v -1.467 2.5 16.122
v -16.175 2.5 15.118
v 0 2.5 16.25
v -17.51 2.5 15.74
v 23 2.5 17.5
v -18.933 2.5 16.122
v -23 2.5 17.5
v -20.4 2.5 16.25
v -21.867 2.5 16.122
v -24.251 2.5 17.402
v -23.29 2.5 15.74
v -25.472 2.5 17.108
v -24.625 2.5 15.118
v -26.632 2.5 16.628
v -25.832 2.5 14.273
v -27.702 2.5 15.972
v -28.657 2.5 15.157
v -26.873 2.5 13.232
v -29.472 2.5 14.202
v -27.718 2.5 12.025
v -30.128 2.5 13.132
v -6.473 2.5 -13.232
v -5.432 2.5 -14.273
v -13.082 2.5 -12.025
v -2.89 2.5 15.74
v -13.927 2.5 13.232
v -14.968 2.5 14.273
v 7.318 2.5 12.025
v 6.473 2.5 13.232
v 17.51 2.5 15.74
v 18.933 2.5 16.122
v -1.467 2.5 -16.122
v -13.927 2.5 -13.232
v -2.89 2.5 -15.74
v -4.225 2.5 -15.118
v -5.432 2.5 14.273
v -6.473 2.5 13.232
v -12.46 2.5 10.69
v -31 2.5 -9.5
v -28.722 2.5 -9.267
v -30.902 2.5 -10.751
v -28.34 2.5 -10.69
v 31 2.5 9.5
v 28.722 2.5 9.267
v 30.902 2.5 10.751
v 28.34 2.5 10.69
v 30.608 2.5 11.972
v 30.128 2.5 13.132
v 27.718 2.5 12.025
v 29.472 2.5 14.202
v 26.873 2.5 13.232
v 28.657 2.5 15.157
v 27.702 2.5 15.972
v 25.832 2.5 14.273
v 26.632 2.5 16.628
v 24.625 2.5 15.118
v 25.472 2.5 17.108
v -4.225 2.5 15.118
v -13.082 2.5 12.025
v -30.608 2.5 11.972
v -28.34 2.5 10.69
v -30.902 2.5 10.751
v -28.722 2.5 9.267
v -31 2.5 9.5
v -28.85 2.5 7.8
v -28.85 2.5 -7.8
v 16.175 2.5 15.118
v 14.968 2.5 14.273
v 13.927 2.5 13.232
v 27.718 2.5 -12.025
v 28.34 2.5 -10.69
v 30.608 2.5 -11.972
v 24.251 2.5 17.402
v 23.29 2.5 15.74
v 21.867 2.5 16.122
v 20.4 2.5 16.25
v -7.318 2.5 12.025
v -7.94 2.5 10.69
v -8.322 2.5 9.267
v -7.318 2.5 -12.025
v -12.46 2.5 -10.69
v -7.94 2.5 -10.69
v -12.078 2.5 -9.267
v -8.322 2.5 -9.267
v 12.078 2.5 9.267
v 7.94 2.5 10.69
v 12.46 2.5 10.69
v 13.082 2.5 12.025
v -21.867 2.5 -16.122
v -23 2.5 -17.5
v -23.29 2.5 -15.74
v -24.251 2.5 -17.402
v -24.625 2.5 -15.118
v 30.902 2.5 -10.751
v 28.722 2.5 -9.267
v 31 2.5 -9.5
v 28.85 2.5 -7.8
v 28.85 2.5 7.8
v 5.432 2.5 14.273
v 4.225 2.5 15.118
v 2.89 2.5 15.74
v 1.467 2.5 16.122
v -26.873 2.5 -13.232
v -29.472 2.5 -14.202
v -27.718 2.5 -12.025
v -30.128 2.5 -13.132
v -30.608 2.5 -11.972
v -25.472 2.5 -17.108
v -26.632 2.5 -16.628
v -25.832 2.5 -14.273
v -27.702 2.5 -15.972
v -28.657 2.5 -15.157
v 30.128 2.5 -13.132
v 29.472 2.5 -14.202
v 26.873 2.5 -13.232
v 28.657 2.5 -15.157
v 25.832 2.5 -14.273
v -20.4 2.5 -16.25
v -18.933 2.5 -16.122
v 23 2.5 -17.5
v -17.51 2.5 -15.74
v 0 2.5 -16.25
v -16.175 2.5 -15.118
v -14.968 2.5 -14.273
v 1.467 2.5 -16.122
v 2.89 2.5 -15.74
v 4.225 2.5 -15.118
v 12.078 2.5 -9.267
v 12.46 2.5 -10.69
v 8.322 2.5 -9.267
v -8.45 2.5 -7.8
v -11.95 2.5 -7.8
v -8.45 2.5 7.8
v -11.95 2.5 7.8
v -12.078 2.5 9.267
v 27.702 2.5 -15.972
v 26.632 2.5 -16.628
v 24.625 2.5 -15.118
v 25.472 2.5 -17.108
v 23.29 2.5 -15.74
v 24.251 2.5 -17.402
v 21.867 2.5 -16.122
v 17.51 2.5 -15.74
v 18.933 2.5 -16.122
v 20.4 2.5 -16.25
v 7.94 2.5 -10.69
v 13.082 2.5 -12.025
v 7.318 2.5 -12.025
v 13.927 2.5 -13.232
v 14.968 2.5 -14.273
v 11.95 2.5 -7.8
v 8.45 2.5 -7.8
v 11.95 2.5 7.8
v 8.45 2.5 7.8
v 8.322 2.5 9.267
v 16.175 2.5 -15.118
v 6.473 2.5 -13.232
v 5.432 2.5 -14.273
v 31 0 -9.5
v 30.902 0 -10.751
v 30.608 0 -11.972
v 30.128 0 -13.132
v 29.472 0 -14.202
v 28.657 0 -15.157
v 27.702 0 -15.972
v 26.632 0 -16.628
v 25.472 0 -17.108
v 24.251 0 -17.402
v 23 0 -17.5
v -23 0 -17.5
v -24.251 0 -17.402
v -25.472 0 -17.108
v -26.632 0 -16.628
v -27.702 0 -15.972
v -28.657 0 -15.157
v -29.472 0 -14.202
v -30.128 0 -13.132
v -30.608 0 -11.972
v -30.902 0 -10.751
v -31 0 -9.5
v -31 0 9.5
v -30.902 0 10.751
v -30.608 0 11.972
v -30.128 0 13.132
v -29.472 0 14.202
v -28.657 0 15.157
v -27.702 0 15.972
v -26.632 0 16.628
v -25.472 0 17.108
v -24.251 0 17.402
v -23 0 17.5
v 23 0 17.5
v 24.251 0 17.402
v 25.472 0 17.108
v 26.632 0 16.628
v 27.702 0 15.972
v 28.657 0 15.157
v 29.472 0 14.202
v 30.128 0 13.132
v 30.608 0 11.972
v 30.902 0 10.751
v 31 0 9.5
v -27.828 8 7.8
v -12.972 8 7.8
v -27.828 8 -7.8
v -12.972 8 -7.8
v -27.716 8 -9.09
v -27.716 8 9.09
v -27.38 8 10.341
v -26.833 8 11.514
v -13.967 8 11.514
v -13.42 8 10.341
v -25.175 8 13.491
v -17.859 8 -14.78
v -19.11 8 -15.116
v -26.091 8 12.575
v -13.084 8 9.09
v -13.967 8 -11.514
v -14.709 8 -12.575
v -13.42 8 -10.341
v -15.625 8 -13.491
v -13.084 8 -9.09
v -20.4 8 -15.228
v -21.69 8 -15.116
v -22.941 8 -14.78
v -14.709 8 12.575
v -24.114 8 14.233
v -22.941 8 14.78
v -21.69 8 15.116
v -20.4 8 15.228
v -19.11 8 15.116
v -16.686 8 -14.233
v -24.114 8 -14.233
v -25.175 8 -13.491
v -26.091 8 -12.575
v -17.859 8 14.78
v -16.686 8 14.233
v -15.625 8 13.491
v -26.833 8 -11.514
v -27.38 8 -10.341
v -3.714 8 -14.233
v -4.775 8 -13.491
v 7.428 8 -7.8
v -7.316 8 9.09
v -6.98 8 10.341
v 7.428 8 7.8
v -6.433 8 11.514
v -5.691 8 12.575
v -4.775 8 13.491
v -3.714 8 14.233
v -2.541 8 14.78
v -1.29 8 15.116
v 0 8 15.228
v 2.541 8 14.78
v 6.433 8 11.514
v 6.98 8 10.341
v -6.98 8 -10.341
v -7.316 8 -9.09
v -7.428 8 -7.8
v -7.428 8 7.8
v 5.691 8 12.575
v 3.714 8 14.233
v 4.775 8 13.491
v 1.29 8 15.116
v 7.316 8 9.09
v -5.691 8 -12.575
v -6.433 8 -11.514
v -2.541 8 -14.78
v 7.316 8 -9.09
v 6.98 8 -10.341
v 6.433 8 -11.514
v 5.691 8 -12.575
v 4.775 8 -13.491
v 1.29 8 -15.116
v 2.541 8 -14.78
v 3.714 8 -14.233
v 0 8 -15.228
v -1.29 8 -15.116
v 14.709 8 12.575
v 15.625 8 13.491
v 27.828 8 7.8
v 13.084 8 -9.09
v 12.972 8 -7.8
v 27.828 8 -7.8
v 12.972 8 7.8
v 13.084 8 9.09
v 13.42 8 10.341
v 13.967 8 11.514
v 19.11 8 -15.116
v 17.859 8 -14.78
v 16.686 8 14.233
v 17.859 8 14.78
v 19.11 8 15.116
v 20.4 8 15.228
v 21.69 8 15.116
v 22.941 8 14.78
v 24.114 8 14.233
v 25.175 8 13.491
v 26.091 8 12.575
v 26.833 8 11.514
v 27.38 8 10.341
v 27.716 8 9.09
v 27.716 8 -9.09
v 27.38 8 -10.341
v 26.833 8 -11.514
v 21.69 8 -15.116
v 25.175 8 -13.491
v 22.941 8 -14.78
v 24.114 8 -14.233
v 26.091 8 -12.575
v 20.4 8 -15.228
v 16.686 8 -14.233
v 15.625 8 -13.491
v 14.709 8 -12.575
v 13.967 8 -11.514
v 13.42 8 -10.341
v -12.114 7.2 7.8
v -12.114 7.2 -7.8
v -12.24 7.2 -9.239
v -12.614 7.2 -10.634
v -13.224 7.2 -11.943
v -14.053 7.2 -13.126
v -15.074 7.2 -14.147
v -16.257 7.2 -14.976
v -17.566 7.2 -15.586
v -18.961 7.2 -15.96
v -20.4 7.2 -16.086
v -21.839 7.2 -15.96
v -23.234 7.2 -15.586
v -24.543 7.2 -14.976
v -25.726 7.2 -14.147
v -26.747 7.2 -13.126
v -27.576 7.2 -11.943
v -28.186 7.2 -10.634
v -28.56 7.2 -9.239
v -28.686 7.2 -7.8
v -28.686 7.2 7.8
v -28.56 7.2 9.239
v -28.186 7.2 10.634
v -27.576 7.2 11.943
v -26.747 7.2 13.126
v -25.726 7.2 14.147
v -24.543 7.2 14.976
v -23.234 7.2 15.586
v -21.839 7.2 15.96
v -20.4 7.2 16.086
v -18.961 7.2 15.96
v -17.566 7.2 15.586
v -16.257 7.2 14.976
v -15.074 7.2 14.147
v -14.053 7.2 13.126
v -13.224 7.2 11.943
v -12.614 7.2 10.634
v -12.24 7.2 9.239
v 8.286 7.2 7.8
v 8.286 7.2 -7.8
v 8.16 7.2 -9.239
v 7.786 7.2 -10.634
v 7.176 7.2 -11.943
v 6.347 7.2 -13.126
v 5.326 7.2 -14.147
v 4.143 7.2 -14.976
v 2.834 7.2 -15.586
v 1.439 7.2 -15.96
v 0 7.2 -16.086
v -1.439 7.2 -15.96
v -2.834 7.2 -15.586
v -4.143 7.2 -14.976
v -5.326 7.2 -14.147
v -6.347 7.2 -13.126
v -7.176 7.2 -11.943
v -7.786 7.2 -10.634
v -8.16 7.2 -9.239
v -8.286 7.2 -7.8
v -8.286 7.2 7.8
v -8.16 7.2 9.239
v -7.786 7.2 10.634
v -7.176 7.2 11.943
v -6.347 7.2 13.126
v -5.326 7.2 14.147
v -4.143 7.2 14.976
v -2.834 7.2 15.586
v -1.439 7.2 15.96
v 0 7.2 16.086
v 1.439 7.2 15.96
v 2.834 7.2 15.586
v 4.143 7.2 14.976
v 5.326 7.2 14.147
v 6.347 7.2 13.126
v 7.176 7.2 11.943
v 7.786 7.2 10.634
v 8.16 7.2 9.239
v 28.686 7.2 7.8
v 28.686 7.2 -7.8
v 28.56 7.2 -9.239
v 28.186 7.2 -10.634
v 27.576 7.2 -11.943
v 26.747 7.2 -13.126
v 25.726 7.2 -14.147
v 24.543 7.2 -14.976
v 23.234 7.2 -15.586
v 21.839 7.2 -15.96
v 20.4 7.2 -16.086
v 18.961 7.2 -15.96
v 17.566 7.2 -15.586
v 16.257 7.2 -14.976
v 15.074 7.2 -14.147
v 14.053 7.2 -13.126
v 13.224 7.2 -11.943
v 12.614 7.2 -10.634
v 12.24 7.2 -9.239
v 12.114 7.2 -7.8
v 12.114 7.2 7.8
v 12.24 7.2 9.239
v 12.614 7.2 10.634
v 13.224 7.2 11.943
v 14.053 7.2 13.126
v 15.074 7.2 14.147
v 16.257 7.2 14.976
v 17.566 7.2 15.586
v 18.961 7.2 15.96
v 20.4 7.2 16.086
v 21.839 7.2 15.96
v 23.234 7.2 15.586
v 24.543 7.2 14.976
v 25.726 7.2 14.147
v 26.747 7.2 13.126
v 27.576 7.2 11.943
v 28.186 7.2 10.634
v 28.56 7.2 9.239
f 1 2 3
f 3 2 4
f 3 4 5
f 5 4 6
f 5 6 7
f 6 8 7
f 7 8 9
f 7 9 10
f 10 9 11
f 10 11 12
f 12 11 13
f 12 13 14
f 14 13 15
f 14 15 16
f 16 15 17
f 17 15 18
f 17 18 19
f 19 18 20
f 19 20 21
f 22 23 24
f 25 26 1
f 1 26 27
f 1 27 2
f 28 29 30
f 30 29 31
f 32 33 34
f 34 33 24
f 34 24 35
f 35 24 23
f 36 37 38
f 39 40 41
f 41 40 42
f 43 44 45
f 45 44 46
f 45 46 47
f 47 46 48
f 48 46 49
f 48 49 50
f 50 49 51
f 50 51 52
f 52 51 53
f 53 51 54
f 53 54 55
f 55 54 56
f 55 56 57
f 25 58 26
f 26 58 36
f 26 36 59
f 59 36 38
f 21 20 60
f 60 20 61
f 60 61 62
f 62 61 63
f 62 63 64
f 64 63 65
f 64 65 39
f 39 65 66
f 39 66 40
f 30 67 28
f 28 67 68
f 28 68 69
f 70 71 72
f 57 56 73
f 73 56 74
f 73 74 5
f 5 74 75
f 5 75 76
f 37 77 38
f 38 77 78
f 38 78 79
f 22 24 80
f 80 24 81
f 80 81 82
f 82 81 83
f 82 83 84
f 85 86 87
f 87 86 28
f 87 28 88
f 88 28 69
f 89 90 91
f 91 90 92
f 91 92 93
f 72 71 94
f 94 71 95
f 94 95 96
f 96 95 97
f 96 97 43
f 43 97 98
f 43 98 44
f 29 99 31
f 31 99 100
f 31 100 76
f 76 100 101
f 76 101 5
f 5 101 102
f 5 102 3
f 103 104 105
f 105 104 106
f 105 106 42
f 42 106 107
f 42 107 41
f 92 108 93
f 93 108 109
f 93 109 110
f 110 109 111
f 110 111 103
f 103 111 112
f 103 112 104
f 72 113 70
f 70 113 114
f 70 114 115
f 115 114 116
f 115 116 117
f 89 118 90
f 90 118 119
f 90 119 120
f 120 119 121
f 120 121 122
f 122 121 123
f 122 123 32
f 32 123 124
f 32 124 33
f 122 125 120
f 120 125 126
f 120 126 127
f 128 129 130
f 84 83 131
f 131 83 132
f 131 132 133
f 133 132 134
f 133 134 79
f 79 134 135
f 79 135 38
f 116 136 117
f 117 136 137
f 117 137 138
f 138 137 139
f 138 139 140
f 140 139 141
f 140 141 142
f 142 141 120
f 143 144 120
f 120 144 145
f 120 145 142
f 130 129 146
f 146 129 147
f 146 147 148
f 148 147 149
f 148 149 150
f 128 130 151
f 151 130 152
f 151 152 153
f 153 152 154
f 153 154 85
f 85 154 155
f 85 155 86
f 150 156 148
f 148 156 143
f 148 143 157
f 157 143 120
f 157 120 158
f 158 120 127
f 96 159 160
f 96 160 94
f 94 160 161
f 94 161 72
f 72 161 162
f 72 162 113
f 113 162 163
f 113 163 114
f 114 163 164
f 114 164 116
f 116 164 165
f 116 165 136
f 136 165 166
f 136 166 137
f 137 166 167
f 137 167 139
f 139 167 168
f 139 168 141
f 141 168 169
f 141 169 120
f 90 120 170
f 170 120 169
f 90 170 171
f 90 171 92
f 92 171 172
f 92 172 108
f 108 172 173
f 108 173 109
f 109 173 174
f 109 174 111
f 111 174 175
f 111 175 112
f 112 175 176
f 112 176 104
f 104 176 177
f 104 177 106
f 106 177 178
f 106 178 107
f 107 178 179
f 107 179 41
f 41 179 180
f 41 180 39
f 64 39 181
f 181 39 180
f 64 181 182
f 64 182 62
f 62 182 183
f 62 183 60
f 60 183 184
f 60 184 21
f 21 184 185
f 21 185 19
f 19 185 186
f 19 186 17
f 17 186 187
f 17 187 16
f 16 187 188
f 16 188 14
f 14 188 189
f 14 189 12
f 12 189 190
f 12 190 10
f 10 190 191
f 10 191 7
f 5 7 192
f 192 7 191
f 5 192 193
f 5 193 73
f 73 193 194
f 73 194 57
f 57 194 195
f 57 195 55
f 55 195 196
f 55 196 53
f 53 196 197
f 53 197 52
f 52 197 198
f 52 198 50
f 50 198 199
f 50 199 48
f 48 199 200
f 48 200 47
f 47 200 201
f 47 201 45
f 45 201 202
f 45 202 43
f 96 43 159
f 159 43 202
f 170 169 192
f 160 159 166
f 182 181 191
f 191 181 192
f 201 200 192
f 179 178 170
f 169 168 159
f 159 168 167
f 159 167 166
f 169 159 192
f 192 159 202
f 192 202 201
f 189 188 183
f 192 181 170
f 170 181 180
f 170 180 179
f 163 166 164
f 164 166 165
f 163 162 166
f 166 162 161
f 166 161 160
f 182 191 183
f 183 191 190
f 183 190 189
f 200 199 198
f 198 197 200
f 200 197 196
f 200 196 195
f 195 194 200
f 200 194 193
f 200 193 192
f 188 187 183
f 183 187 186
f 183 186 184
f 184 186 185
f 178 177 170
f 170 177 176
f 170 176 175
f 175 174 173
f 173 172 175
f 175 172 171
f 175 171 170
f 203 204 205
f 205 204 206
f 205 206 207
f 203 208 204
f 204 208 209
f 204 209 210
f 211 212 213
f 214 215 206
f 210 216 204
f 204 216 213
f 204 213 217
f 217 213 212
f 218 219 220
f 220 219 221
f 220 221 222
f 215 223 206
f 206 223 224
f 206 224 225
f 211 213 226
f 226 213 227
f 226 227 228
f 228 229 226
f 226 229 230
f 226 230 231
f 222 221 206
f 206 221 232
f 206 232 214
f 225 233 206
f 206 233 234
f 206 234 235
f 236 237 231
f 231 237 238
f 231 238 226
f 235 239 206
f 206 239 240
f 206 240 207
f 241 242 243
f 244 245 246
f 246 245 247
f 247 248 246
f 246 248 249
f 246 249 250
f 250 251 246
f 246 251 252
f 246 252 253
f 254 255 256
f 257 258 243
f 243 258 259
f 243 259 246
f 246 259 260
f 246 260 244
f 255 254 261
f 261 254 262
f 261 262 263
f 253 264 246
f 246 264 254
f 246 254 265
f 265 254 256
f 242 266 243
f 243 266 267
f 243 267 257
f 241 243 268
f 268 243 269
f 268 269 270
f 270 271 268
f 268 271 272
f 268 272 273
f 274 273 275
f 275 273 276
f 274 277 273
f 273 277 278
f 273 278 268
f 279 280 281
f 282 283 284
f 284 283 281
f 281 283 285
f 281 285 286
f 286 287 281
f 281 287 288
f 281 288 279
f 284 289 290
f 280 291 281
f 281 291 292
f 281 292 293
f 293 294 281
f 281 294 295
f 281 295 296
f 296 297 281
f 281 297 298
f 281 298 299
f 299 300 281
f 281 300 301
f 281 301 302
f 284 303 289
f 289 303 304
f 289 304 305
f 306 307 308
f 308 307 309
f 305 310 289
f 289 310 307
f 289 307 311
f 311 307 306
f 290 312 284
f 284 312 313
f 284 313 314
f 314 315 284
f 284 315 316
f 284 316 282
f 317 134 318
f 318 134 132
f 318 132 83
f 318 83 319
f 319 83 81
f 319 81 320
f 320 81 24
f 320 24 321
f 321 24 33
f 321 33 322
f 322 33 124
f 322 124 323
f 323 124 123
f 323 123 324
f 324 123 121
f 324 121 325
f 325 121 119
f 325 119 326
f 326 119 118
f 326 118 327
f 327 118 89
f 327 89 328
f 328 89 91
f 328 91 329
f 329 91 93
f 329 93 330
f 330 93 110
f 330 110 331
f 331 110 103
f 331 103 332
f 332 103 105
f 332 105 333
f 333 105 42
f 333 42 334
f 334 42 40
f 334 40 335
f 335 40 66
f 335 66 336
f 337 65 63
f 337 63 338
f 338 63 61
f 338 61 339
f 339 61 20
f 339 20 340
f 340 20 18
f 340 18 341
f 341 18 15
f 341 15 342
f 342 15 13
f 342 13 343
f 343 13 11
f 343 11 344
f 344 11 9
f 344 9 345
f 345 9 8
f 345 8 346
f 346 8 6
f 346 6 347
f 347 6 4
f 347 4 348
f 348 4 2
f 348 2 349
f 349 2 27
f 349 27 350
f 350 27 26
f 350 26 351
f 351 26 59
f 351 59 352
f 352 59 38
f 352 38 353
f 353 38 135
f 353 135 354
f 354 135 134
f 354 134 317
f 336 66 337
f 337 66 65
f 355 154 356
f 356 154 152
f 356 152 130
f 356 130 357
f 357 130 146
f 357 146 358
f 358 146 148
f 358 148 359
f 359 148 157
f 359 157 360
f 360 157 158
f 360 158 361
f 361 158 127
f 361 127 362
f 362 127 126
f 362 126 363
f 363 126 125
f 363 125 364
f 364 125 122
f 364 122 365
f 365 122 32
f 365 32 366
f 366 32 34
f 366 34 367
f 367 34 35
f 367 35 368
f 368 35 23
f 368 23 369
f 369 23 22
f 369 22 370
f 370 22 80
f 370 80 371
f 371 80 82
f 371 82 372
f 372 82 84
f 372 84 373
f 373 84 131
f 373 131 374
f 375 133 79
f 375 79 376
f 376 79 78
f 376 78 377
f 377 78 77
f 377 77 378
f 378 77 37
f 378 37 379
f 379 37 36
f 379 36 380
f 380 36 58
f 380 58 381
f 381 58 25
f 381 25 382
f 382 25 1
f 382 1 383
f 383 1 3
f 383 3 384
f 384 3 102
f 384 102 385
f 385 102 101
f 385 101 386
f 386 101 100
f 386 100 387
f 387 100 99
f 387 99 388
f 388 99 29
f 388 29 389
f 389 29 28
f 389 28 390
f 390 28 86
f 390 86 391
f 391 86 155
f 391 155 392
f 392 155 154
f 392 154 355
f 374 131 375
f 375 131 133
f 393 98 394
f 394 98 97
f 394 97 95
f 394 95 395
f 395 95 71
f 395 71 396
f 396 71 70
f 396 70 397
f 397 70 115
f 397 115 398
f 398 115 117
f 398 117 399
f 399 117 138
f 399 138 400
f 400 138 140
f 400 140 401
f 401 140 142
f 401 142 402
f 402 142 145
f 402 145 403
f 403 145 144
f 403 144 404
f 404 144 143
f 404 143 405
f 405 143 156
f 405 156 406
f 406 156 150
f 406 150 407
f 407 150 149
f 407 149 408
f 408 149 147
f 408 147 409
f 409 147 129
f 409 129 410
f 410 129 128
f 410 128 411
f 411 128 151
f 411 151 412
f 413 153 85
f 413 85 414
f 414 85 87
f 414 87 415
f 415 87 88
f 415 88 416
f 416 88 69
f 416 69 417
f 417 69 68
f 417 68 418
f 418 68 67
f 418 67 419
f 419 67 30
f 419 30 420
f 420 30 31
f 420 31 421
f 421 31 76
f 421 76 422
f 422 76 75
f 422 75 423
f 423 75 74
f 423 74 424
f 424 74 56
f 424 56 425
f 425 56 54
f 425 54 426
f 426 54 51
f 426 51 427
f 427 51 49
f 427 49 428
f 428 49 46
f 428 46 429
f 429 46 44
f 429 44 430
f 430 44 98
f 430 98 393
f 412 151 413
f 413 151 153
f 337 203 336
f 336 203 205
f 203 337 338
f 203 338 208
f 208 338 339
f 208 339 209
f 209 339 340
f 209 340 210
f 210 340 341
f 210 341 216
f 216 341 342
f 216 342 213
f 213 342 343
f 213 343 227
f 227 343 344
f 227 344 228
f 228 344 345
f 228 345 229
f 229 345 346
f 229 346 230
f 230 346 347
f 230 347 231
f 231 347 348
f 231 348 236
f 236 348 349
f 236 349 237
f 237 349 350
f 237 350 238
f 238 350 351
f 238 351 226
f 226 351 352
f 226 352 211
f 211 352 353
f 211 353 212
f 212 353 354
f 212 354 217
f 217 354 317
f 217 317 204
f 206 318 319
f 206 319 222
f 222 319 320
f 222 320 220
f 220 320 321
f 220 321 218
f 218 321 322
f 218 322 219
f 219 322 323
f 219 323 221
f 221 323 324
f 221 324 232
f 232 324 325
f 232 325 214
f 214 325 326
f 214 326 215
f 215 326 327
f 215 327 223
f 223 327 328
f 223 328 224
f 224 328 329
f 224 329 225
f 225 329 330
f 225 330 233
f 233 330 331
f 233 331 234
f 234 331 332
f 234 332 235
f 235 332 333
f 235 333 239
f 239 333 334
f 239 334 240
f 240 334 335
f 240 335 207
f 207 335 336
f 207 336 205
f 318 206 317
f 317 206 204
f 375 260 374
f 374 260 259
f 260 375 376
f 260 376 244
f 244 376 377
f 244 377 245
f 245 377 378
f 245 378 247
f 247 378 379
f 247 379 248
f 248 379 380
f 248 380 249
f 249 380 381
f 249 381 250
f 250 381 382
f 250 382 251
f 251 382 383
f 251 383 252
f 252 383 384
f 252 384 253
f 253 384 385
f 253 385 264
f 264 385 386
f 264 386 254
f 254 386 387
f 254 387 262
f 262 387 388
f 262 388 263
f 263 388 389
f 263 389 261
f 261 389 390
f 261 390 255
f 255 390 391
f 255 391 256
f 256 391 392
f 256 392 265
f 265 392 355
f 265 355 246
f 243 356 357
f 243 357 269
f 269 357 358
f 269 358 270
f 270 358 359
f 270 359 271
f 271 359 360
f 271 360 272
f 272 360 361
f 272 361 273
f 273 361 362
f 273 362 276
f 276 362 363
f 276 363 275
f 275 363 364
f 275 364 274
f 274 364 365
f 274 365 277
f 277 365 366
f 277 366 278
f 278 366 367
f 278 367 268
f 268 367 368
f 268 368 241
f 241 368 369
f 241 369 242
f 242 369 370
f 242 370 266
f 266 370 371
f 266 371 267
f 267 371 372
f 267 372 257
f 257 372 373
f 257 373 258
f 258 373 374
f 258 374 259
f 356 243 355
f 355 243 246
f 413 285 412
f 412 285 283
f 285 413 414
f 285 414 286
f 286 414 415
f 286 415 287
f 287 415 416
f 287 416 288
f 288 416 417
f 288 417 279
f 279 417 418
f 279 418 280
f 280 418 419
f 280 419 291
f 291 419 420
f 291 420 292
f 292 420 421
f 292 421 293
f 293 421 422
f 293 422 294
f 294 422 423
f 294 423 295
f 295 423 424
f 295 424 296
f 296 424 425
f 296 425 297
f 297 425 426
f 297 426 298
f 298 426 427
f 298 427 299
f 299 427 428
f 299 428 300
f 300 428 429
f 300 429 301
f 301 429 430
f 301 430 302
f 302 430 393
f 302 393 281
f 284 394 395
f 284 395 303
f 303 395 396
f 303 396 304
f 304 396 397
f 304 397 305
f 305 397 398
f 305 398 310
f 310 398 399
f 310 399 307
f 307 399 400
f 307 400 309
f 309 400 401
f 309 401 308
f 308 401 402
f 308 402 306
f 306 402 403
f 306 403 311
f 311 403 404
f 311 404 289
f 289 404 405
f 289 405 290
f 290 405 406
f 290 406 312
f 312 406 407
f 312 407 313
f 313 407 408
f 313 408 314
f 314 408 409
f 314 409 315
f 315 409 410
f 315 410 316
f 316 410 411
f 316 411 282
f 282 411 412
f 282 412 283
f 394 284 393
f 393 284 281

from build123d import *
from OCP.BRepFilletAPI import BRepFilletAPI_MakeChamfer

# Parameters (mm, degrees)
BOSS_EXTRUDE1_DEPTH = 2.5
BOSS_EXTRUDE2_DEPTH = 5.5
CHAMFER2_SIZE       = 5.5
CHAMFER2_SIZE_2     = 0.192064232
CHAMFER3_SIZE       = 0.8
CHAMFER3_SIZE2      = 0.829452764


with BuildPart() as part:
    # Sketch1 → Boss-Extrude1 (new body)
    with BuildSketch(Plane(origin=(0, 0, 0), x_dir=(1, 0, 0), z_dir=(0, 1, 0))):
        with BuildLine():
            Line((-23, 17.5), (23, 17.5))
            ThreePointArc((23, 17.5), (28.656854249, 15.156854249), (31, 9.5))
            Line((31, 9.5), (31, -9.5))
            ThreePointArc((31, -9.5), (28.656854249, -15.156854249), (23, -17.5))
            Line((23, -17.5), (-23, -17.5))
            ThreePointArc((-23, -17.5), (-28.656854249, -15.156854249), (-31, -9.5))
            Line((-31, -9.5), (-31, 9.5))
            ThreePointArc((-31, 9.5), (-28.656854249, 15.156854249), (-23, 17.5))
        make_face()
    extrude(amount=BOSS_EXTRUDE1_DEPTH)

    # Sketch2 → Boss-Extrude2 (add)
    with BuildSketch(Plane(origin=(0, 2.5, 0), x_dir=(1, 0, 0), z_dir=(0, 1, 0))):
        with BuildLine():
            Line((-28.85, -7.8), (-28.85, 7.8))
            ThreePointArc((-28.85, 7.8), (-20.4, 16.25), (-11.95, 7.8))
            Line((-11.95, 7.8), (-11.95, -7.8))
            ThreePointArc((-11.95, -7.8), (-20.4, -16.25), (-28.85, -7.8))
        make_face()
        with BuildLine():
            Line((-8.45, -7.8), (-8.45, 7.8))
            ThreePointArc((-8.45, 7.8), (0, 16.25), (8.45, 7.8))
            Line((8.45, 7.8), (8.45, -7.8))
            ThreePointArc((8.45, -7.8), (0, -16.25), (-8.45, -7.8))
        make_face()
        with BuildLine():
            Line((11.95, -7.8), (11.95, 7.8))
            ThreePointArc((11.95, 7.8), (20.4, 16.25), (28.85, 7.8))
            Line((28.85, 7.8), (28.85, -7.8))
            ThreePointArc((28.85, -7.8), (20.4, -16.25), (11.95, -7.8))
        make_face()
    extrude(amount=BOSS_EXTRUDE2_DEPTH)

    # Chamfer2
    # the kernel refuses this chamfer: 5.5, 0.192064232 mm, written as the material it takes off along each edge
    with BuildSketch(Plane(origin=(-28.85, 8, 7.8), x_dir=(-0.0013423185755924486, -0.9999990990900149, 0), z_dir=(0, 0, -1))) as chamfer2_piece_1_section:
        Polygon((CHAMFER2_SIZE * 0.99999909909, -CHAMFER2_SIZE * 0.00134231857559), (-CHAMFER2_SIZE_2 * 0.00134231857702, -CHAMFER2_SIZE_2 * 0.999999100155), (0, 0), align=None)
    chamfer2_piece_1 = extrude(amount=15.6, mode=Mode.PRIVATE)
    chamfer2_piece_1 = split(chamfer2_piece_1, bisect_by=Plane(origin=(-28.848299171, 2.5, 0), z_dir=(0, 1, 0)), keep=Keep.TOP, mode=Mode.PRIVATE)
    add(chamfer2_piece_1, mode=Mode.SUBTRACT)
    with BuildSketch(Plane(origin=(-20.4, 8, -7.8), x_dir=(-1, 0, 0), z_dir=(0, 0, 1))) as chamfer2_piece_2_section:
        Polygon((8.45, CHAMFER2_SIZE), (8.45 - CHAMFER2_SIZE_2 * 1.00000000107, 0), (8.45, 0), align=None)
    chamfer2_piece_2 = revolve(axis=Axis((-20.4, 8, -7.8), (0, -1, 0)), revolution_arc=180, mode=Mode.PRIVATE)
    chamfer2_piece_2 = split(chamfer2_piece_2, bisect_by=Plane(origin=(-20.4, 2.5, -16.18152008), z_dir=(0, 1, 0)), keep=Keep.TOP, mode=Mode.PRIVATE)
    add(chamfer2_piece_2, mode=Mode.SUBTRACT)
    with BuildSketch(Plane(origin=(-11.95, 8, -7.8), x_dir=(0.0013423185755924486, -0.9999990990900149, 0), z_dir=(0, 0, 1))) as chamfer2_piece_3_section:
        Polygon((CHAMFER2_SIZE * 0.99999909909, -CHAMFER2_SIZE * 0.00134231857559), (-CHAMFER2_SIZE_2 * 0.00134231857702, -CHAMFER2_SIZE_2 * 0.999999100155), (0, 0), align=None)
    chamfer2_piece_3 = extrude(amount=15.6, mode=Mode.PRIVATE)
    chamfer2_piece_3 = split(chamfer2_piece_3, bisect_by=Plane(origin=(-11.951700829, 2.5, 0), z_dir=(0, 1, 0)), keep=Keep.TOP, mode=Mode.PRIVATE)
    add(chamfer2_piece_3, mode=Mode.SUBTRACT)
    with BuildSketch(Plane(origin=(-20.4, 8, 7.8), x_dir=(1, 0, 0), z_dir=(0, 0, -1))) as chamfer2_piece_4_section:
        Polygon((8.45, CHAMFER2_SIZE), (8.45 - CHAMFER2_SIZE_2 * 1.00000000107, 0), (8.45, 0), align=None)
    chamfer2_piece_4 = revolve(axis=Axis((-20.4, 8, 7.8), (0, -1, 0)), revolution_arc=180, mode=Mode.PRIVATE)
    chamfer2_piece_4 = split(chamfer2_piece_4, bisect_by=Plane(origin=(-20.4, 2.5, 16.18152008), z_dir=(0, 1, 0)), keep=Keep.TOP, mode=Mode.PRIVATE)
    add(chamfer2_piece_4, mode=Mode.SUBTRACT)
    with BuildSketch(Plane(origin=(-8.45, 8, 7.8), x_dir=(-0.0013423185755924486, -0.9999990990900149, 0), z_dir=(0, 0, -1))) as chamfer2_piece_5_section:
        Polygon((CHAMFER2_SIZE * 0.99999909909, -CHAMFER2_SIZE * 0.00134231857559), (-CHAMFER2_SIZE_2 * 0.00134231857702, -CHAMFER2_SIZE_2 * 0.999999100155), (0, 0), align=None)
    chamfer2_piece_5 = extrude(amount=15.6, mode=Mode.PRIVATE)
    chamfer2_piece_5 = split(chamfer2_piece_5, bisect_by=Plane(origin=(-8.448299171, 2.5, 0), z_dir=(0, 1, 0)), keep=Keep.TOP, mode=Mode.PRIVATE)
    add(chamfer2_piece_5, mode=Mode.SUBTRACT)
    with BuildSketch(Plane(origin=(0, 8, -7.8), x_dir=(-1, 0, 0), z_dir=(0, 0, 1))) as chamfer2_piece_6_section:
        Polygon((8.45, CHAMFER2_SIZE), (8.45 - CHAMFER2_SIZE_2 * 1.00000000107, 0), (8.45, 0), align=None)
    chamfer2_piece_6 = revolve(axis=Axis((0, 8, -7.8), (0, -1, 0)), revolution_arc=180, mode=Mode.PRIVATE)
    chamfer2_piece_6 = split(chamfer2_piece_6, bisect_by=Plane(origin=(0, 2.5, -16.18152008), z_dir=(0, 1, 0)), keep=Keep.TOP, mode=Mode.PRIVATE)
    add(chamfer2_piece_6, mode=Mode.SUBTRACT)
    with BuildSketch(Plane(origin=(8.45, 8, -7.8), x_dir=(0.0013423185755924486, -0.9999990990900149, 0), z_dir=(0, 0, 1))) as chamfer2_piece_7_section:
        Polygon((CHAMFER2_SIZE * 0.99999909909, -CHAMFER2_SIZE * 0.00134231857559), (-CHAMFER2_SIZE_2 * 0.00134231857702, -CHAMFER2_SIZE_2 * 0.999999100155), (0, 0), align=None)
    chamfer2_piece_7 = extrude(amount=15.6, mode=Mode.PRIVATE)
    chamfer2_piece_7 = split(chamfer2_piece_7, bisect_by=Plane(origin=(8.448299171, 2.5, 0), z_dir=(0, 1, 0)), keep=Keep.TOP, mode=Mode.PRIVATE)
    add(chamfer2_piece_7, mode=Mode.SUBTRACT)
    with BuildSketch(Plane(origin=(0, 8, 7.8), x_dir=(1, 0, 0), z_dir=(0, 0, -1))) as chamfer2_piece_8_section:
        Polygon((8.45, CHAMFER2_SIZE), (8.45 - CHAMFER2_SIZE_2 * 1.00000000107, 0), (8.45, 0), align=None)
    chamfer2_piece_8 = revolve(axis=Axis((0, 8, 7.8), (0, -1, 0)), revolution_arc=180, mode=Mode.PRIVATE)
    chamfer2_piece_8 = split(chamfer2_piece_8, bisect_by=Plane(origin=(0, 2.5, 16.18152008), z_dir=(0, 1, 0)), keep=Keep.TOP, mode=Mode.PRIVATE)
    add(chamfer2_piece_8, mode=Mode.SUBTRACT)
    with BuildSketch(Plane(origin=(11.95, 8, 7.8), x_dir=(-0.0013423185755924486, -0.9999990990900149, 0), z_dir=(0, 0, -1))) as chamfer2_piece_9_section:
        Polygon((CHAMFER2_SIZE * 0.99999909909, -CHAMFER2_SIZE * 0.00134231857559), (-CHAMFER2_SIZE_2 * 0.00134231857702, -CHAMFER2_SIZE_2 * 0.999999100155), (0, 0), align=None)
    chamfer2_piece_9 = extrude(amount=15.6, mode=Mode.PRIVATE)
    chamfer2_piece_9 = split(chamfer2_piece_9, bisect_by=Plane(origin=(11.951700829, 2.5, 0), z_dir=(0, 1, 0)), keep=Keep.TOP, mode=Mode.PRIVATE)
    add(chamfer2_piece_9, mode=Mode.SUBTRACT)
    with BuildSketch(Plane(origin=(20.4, 8, -7.8), x_dir=(-1, 0, 0), z_dir=(0, 0, 1))) as chamfer2_piece_10_section:
        Polygon((8.45, CHAMFER2_SIZE), (8.45 - CHAMFER2_SIZE_2 * 1.00000000107, 0), (8.45, 0), align=None)
    chamfer2_piece_10 = revolve(axis=Axis((20.4, 8, -7.8), (0, -1, 0)), revolution_arc=180, mode=Mode.PRIVATE)
    chamfer2_piece_10 = split(chamfer2_piece_10, bisect_by=Plane(origin=(20.4, 2.5, -16.18152008), z_dir=(0, 1, 0)), keep=Keep.TOP, mode=Mode.PRIVATE)
    add(chamfer2_piece_10, mode=Mode.SUBTRACT)
    with BuildSketch(Plane(origin=(28.85, 8, -7.8), x_dir=(0.0013423185755924486, -0.9999990990900149, 0), z_dir=(0, 0, 1))) as chamfer2_piece_11_section:
        Polygon((CHAMFER2_SIZE * 0.99999909909, -CHAMFER2_SIZE * 0.00134231857559), (-CHAMFER2_SIZE_2 * 0.00134231857702, -CHAMFER2_SIZE_2 * 0.999999100155), (0, 0), align=None)
    chamfer2_piece_11 = extrude(amount=15.6, mode=Mode.PRIVATE)
    chamfer2_piece_11 = split(chamfer2_piece_11, bisect_by=Plane(origin=(28.848299171, 2.5, 0), z_dir=(0, 1, 0)), keep=Keep.TOP, mode=Mode.PRIVATE)
    add(chamfer2_piece_11, mode=Mode.SUBTRACT)
    with BuildSketch(Plane(origin=(20.4, 8, 7.8), x_dir=(1, 0, 0), z_dir=(0, 0, -1))) as chamfer2_piece_12_section:
        Polygon((8.45, CHAMFER2_SIZE), (8.45 - CHAMFER2_SIZE_2 * 1.00000000107, 0), (8.45, 0), align=None)
    chamfer2_piece_12 = revolve(axis=Axis((20.4, 8, 7.8), (0, -1, 0)), revolution_arc=180, mode=Mode.PRIVATE)
    chamfer2_piece_12 = split(chamfer2_piece_12, bisect_by=Plane(origin=(20.4, 2.5, 16.18152008), z_dir=(0, 1, 0)), keep=Keep.TOP, mode=Mode.PRIVATE)
    add(chamfer2_piece_12, mode=Mode.SUBTRACT)

    # Chamfer3: one chamfer whose edges measure the first distance from different faces: ONE call of the kernel's chamfer builder (chamfer() names one face for all edges)
    chamfer3_edges_1 = [part.edges().sort_by_distance(p)[0] for p in [
        (-20.4, 8, 16.057935768),
    ]]
    chamfer3_side_1 = [part.faces().sort_by_distance(p)[0] for p in [
        (-20.4, 5.25, 16.153967884),
    ]]
    chamfer3_edges_2 = [part.edges().sort_by_distance(p)[0] for p in [
        (-12.142064232, 8, 0),
    ]]
    chamfer3_side_2 = [part.faces().sort_by_distance(p)[0] for p in [
        (-12.046032116, 5.25, 0),
    ]]
    chamfer3_edges_3 = [part.edges().sort_by_distance(p)[0] for p in [
        (-20.4, 8, -16.057935768),
    ]]
    chamfer3_side_3 = [part.faces().sort_by_distance(p)[0] for p in [
        (-20.4, 5.25, -16.153967884),
    ]]
    chamfer3_edges_4 = [part.edges().sort_by_distance(p)[0] for p in [
        (-28.657935768, 8, 0),
    ]]
    chamfer3_side_4 = [part.faces().sort_by_distance(p)[0] for p in [
        (-28.753967884, 5.25, 0),
    ]]
    chamfer3_edges_5 = [part.edges().sort_by_distance(p)[0] for p in [
        (0, 8, 16.057935768),
    ]]
    chamfer3_side_5 = [part.faces().sort_by_distance(p)[0] for p in [
        (0, 5.25, 16.153967884),
    ]]
    chamfer3_edges_6 = [part.edges().sort_by_distance(p)[0] for p in [
        (8.257935768, 8, 0),
    ]]
    chamfer3_side_6 = [part.faces().sort_by_distance(p)[0] for p in [
        (8.353967884, 5.25, 0),
    ]]
    chamfer3_edges_7 = [part.edges().sort_by_distance(p)[0] for p in [
        (0, 8, -16.057935768),
    ]]
    chamfer3_side_7 = [part.faces().sort_by_distance(p)[0] for p in [
        (0, 5.25, -16.153967884),
    ]]
    chamfer3_edges_8 = [part.edges().sort_by_distance(p)[0] for p in [
        (-8.257935768, 8, 0),
    ]]
    chamfer3_side_8 = [part.faces().sort_by_distance(p)[0] for p in [
        (-8.353967884, 5.25, 0),
    ]]
    chamfer3_edges_9 = [part.edges().sort_by_distance(p)[0] for p in [
        (20.4, 8, 16.057935768),
    ]]
    chamfer3_side_9 = [part.faces().sort_by_distance(p)[0] for p in [
        (20.4, 5.25, 16.153967884),
    ]]
    chamfer3_edges_10 = [part.edges().sort_by_distance(p)[0] for p in [
        (28.657935768, 8, 0),
    ]]
    chamfer3_side_10 = [part.faces().sort_by_distance(p)[0] for p in [
        (28.753967884, 5.25, 0),
    ]]
    chamfer3_edges_11 = [part.edges().sort_by_distance(p)[0] for p in [
        (20.4, 8, -16.057935768),
    ]]
    chamfer3_side_11 = [part.faces().sort_by_distance(p)[0] for p in [
        (20.4, 5.25, -16.153967884),
    ]]
    chamfer3_edges_12 = [part.edges().sort_by_distance(p)[0] for p in [
        (12.142064232, 8, 0),
    ]]
    chamfer3_side_12 = [part.faces().sort_by_distance(p)[0] for p in [
        (12.046032116, 5.25, 0),
    ]]
    chamfer3 = BRepFilletAPI_MakeChamfer(part.part.solid().wrapped)
    for e in chamfer3_edges_1:
        chamfer3.Add(CHAMFER3_SIZE, CHAMFER3_SIZE2, e.wrapped, chamfer3_side_1[0].wrapped)  # the first distance lies on this face
    for e in chamfer3_edges_2:
        chamfer3.Add(CHAMFER3_SIZE, CHAMFER3_SIZE2, e.wrapped, chamfer3_side_2[0].wrapped)  # the first distance lies on this face
    for e in chamfer3_edges_3:
        chamfer3.Add(CHAMFER3_SIZE, CHAMFER3_SIZE2, e.wrapped, chamfer3_side_3[0].wrapped)  # the first distance lies on this face
    for e in chamfer3_edges_4:
        chamfer3.Add(CHAMFER3_SIZE, CHAMFER3_SIZE2, e.wrapped, chamfer3_side_4[0].wrapped)  # the first distance lies on this face
    for e in chamfer3_edges_5:
        chamfer3.Add(CHAMFER3_SIZE, CHAMFER3_SIZE2, e.wrapped, chamfer3_side_5[0].wrapped)  # the first distance lies on this face
    for e in chamfer3_edges_6:
        chamfer3.Add(CHAMFER3_SIZE, CHAMFER3_SIZE2, e.wrapped, chamfer3_side_6[0].wrapped)  # the first distance lies on this face
    for e in chamfer3_edges_7:
        chamfer3.Add(CHAMFER3_SIZE, CHAMFER3_SIZE2, e.wrapped, chamfer3_side_7[0].wrapped)  # the first distance lies on this face
    for e in chamfer3_edges_8:
        chamfer3.Add(CHAMFER3_SIZE, CHAMFER3_SIZE2, e.wrapped, chamfer3_side_8[0].wrapped)  # the first distance lies on this face
    for e in chamfer3_edges_9:
        chamfer3.Add(CHAMFER3_SIZE, CHAMFER3_SIZE2, e.wrapped, chamfer3_side_9[0].wrapped)  # the first distance lies on this face
    for e in chamfer3_edges_10:
        chamfer3.Add(CHAMFER3_SIZE, CHAMFER3_SIZE2, e.wrapped, chamfer3_side_10[0].wrapped)  # the first distance lies on this face
    for e in chamfer3_edges_11:
        chamfer3.Add(CHAMFER3_SIZE, CHAMFER3_SIZE2, e.wrapped, chamfer3_side_11[0].wrapped)  # the first distance lies on this face
    for e in chamfer3_edges_12:
        chamfer3.Add(CHAMFER3_SIZE, CHAMFER3_SIZE2, e.wrapped, chamfer3_side_12[0].wrapped)  # the first distance lies on this face
    add(Compound.cast(chamfer3.Shape()), mode=Mode.REPLACE)


solid = part.part
